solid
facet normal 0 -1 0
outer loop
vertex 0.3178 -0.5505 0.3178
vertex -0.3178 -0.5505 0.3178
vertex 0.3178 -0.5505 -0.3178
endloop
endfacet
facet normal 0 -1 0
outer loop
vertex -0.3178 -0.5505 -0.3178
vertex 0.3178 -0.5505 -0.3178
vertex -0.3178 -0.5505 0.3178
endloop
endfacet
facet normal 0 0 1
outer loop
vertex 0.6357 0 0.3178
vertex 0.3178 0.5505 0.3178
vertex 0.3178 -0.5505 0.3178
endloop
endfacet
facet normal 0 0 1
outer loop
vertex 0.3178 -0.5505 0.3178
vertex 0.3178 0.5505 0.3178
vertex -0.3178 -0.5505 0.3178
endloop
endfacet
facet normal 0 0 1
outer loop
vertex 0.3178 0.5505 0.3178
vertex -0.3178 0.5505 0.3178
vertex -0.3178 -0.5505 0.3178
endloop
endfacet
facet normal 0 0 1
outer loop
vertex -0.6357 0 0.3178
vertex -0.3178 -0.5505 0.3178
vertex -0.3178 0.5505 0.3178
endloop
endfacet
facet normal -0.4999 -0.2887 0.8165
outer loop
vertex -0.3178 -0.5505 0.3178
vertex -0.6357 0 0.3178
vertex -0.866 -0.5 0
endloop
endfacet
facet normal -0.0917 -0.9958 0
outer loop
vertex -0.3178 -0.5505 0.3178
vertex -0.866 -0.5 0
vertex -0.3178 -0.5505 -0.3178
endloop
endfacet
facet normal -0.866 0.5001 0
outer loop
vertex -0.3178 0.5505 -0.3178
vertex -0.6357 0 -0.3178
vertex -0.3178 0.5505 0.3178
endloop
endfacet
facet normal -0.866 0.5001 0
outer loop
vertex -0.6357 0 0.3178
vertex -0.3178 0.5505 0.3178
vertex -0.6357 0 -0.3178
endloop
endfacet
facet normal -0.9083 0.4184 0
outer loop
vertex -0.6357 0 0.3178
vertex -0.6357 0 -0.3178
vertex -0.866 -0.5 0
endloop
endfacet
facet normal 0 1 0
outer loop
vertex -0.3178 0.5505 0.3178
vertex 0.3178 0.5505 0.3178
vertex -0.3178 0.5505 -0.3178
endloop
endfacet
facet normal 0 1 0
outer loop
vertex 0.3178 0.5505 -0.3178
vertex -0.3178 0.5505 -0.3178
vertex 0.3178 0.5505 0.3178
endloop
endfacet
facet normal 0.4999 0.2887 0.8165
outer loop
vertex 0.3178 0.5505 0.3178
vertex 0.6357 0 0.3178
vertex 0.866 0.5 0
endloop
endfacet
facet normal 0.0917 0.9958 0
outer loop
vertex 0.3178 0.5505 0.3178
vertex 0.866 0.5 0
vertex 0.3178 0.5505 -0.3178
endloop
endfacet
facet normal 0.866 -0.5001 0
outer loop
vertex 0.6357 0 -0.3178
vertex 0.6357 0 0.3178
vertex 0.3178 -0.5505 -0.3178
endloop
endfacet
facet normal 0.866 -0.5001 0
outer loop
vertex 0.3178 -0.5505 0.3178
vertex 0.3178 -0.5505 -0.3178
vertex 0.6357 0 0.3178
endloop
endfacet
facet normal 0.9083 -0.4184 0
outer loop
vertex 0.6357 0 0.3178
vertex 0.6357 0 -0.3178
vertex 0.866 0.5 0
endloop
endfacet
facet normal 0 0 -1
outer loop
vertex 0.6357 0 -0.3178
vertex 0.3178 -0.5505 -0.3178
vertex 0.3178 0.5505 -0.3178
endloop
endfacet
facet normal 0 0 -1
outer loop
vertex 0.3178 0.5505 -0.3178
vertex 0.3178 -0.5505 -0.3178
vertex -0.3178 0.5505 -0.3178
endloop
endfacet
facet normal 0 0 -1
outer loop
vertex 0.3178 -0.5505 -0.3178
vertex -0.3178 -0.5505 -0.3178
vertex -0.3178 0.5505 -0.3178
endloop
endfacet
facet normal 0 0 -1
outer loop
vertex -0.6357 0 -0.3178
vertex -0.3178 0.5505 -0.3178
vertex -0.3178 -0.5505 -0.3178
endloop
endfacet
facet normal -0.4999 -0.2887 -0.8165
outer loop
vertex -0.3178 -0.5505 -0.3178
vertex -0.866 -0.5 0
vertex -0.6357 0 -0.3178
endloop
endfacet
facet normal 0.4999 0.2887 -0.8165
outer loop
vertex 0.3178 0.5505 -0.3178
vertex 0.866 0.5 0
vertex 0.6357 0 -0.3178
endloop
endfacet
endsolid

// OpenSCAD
polyhedron( points = [[-0.317837245220558, -0.550510257236836, 0.31783724519142], [-0.635674490429949, 7.96625005498291e-11, 0.31783724519142], [-0.317837245171126, 0.550510257253466, 0.31783724519142], [0.3178372452147, 0.550510257196383, 0.31783724519142], [0.635674490374661, -3.44957465710736e-11, 0.31783724519142], [0.31783724516527, -0.550510257236836, 0.31783724519142], [-0.317837245192018, -0.550510257187404, -0.317837245194408], [-0.63567449037287, 7.96644060490586e-11, -0.317837245194408], [-0.317837245142586, 0.55051025720403, -0.317837245194408], [0.317837245271784, 0.550510257146953, -0.317837245165868], [0.635674490403202, -3.44951114046637e-11, -0.317837245165871], [0.31783724516527, -0.550510257187404, -0.31783724522295], [-0.866025403826941, -0.499999999926384, -3.8655557250275e-11], [0.866025403761162, 0.499999999883696, 2.80483134927378e-11]], faces = [[0, 6, 11, 5], [0, 5, 4, 3, 2, 1], [0, 1, 12], [0, 12, 6], [1, 2, 8, 7], [1, 7, 12], [2, 3, 9, 8], [3, 4, 13], [3, 13, 9], [4, 5, 11, 10], [4, 10, 13], [6, 7, 8, 9, 10, 11], [6, 12, 7], [9, 13, 10]]);
